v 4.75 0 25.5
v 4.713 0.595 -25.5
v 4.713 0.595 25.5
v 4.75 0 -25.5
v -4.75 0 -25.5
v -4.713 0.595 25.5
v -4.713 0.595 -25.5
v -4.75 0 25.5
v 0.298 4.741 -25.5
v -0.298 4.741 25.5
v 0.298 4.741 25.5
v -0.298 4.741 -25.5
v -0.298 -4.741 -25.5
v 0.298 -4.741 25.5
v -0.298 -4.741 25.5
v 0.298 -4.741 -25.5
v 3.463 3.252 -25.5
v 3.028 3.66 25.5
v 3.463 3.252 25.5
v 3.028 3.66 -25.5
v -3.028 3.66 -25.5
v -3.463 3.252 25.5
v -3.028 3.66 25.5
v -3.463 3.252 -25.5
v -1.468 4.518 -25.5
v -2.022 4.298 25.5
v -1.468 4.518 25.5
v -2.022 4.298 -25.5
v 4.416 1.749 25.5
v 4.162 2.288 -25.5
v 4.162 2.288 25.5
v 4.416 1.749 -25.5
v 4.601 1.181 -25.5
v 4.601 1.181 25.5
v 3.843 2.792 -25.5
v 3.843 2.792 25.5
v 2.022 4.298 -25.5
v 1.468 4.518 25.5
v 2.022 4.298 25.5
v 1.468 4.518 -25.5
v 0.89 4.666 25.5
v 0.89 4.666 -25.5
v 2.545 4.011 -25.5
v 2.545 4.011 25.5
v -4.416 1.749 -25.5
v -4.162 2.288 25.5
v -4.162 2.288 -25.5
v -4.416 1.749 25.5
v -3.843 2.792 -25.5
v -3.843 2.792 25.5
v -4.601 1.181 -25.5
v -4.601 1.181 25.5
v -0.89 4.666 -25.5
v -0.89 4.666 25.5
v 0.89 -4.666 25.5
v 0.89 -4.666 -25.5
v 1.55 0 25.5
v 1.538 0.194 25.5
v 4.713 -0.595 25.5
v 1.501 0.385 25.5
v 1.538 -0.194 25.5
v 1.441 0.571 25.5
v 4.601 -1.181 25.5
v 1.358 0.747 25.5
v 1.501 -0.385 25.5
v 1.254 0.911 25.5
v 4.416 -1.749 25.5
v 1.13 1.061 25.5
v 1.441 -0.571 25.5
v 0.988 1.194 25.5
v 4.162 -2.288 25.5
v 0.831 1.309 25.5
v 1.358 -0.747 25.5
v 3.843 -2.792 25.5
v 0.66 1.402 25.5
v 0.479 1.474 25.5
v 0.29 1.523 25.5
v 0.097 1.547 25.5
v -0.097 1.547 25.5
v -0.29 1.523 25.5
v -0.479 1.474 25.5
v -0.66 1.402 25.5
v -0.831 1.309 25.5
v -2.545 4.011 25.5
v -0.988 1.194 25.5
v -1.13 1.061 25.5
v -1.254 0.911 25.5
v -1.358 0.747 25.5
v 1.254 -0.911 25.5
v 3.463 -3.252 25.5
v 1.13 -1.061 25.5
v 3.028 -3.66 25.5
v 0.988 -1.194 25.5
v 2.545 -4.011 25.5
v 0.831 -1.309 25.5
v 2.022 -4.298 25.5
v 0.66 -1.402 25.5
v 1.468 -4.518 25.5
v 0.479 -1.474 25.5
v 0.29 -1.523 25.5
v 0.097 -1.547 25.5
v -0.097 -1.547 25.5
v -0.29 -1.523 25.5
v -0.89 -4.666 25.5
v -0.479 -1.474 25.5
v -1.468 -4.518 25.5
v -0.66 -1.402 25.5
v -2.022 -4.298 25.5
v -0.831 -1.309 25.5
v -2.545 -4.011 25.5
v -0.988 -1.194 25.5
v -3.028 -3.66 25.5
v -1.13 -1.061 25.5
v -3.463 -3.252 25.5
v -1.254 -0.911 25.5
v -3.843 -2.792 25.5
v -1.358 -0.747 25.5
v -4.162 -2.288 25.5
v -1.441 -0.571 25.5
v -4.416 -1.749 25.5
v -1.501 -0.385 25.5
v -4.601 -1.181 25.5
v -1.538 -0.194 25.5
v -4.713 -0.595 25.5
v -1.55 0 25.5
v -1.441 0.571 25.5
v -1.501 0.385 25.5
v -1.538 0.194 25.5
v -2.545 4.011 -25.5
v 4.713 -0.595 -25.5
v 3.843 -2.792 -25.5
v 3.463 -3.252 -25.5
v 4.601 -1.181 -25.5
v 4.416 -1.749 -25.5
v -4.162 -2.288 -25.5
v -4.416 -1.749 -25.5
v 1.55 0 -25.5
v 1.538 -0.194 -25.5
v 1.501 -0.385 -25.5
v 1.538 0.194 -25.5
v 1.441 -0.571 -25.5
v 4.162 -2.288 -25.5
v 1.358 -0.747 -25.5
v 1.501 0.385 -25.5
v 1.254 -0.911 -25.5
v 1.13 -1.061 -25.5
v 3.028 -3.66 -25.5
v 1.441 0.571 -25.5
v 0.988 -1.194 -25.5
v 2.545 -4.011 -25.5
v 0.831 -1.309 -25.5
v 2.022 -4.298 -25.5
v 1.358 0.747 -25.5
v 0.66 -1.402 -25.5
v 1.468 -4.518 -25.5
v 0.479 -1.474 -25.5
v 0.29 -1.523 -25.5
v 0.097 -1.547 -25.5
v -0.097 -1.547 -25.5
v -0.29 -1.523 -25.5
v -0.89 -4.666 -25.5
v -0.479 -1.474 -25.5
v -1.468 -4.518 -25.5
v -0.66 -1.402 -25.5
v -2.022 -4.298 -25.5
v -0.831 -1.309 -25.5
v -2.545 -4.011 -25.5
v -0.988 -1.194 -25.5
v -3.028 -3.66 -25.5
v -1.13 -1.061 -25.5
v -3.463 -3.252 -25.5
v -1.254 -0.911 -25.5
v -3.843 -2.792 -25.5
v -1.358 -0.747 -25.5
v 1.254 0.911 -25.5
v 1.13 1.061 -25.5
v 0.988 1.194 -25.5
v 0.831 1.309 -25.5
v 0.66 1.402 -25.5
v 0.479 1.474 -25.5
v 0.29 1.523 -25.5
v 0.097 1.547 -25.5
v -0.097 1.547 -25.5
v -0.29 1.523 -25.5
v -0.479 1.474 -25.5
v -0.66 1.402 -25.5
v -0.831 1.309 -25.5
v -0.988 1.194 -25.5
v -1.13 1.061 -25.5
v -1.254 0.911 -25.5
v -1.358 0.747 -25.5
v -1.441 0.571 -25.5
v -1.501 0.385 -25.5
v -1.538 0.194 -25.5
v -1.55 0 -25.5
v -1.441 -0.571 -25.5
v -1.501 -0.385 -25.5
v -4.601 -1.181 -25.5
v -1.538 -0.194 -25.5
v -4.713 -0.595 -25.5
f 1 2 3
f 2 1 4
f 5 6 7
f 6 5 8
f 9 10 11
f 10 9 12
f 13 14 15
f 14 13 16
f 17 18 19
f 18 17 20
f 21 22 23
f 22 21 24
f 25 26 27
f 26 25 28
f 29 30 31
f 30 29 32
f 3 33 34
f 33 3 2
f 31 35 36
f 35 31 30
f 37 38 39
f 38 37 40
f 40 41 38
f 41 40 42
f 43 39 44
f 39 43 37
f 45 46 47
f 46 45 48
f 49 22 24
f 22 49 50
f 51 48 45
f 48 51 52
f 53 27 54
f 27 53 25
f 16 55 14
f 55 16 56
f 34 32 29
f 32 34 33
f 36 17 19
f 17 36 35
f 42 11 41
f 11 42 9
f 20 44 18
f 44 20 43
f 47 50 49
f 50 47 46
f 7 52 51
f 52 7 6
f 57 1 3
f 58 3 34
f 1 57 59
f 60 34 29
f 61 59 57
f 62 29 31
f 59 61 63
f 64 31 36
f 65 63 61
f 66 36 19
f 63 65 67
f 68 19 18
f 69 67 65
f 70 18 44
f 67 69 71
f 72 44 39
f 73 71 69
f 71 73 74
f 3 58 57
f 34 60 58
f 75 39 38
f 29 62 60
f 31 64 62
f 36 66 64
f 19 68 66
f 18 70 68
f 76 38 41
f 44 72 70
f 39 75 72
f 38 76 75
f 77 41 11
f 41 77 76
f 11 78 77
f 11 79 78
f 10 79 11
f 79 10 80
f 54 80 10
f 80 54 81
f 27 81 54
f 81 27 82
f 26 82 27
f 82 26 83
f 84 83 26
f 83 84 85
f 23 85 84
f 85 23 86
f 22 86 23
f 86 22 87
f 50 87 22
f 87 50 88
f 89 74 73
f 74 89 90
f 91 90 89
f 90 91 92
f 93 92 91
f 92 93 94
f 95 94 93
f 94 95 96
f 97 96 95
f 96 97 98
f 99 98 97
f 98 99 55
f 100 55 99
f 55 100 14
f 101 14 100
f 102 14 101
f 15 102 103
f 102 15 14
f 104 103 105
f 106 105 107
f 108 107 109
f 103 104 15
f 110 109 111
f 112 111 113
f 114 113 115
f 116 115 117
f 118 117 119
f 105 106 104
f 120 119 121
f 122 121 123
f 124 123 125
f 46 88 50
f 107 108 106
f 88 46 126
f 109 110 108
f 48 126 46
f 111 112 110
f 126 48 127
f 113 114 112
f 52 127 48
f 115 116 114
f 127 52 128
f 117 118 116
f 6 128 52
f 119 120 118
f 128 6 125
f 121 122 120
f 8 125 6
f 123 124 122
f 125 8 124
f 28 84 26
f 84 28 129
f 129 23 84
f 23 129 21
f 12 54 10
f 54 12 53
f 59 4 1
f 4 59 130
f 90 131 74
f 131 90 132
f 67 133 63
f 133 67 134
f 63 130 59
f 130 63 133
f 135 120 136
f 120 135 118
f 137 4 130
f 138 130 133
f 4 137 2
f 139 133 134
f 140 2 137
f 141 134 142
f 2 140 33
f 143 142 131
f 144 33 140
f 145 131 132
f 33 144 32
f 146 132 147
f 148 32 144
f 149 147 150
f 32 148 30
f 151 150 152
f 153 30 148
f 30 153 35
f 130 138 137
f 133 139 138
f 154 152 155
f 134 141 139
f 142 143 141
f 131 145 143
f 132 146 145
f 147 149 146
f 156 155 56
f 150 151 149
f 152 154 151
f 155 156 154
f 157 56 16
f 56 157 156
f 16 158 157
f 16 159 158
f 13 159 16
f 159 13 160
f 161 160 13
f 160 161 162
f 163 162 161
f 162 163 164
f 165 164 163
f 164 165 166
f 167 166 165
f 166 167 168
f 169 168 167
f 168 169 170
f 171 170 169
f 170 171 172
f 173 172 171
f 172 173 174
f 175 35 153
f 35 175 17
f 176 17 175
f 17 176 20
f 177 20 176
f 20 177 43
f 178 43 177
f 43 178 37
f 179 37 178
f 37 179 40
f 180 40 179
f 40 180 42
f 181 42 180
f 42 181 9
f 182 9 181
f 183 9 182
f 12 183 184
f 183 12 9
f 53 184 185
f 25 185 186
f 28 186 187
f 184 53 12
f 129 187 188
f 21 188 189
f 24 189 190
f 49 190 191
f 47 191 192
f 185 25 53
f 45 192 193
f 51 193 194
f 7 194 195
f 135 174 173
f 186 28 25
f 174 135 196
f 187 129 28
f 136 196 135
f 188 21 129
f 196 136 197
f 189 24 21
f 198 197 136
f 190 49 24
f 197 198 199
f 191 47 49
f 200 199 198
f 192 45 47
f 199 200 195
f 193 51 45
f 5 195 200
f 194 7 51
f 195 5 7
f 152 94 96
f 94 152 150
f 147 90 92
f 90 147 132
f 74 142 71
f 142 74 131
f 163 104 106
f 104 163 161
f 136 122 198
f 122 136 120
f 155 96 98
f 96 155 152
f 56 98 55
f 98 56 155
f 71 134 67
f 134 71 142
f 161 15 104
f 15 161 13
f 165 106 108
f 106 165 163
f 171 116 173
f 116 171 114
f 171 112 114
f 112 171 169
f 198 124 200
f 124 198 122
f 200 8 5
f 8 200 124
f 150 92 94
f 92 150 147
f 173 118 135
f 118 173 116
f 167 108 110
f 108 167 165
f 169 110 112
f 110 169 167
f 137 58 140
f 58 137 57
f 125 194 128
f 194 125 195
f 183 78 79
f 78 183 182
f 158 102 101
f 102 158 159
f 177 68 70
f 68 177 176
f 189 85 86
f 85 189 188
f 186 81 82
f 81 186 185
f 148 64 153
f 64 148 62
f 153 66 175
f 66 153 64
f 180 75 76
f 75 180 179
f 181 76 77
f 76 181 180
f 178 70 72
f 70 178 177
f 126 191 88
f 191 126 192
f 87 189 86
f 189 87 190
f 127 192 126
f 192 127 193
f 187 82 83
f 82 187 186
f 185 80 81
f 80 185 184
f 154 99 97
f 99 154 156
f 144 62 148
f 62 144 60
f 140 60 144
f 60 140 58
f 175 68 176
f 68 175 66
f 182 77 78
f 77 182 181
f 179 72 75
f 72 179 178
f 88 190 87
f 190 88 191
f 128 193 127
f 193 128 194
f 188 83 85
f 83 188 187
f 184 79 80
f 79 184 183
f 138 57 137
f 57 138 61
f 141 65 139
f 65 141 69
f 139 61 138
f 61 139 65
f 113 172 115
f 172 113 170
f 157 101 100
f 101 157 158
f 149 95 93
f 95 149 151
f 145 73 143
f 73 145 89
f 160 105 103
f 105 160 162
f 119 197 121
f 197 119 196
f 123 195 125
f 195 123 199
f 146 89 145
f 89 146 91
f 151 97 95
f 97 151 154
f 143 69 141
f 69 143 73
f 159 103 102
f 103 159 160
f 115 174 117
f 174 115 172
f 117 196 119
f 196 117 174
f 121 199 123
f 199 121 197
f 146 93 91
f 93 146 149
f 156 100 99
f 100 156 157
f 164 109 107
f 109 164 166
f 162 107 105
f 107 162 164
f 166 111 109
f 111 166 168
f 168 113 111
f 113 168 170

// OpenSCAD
$fn = 50;


difference() {
	union() {
		translate(v = [0, 0, -25.5000000000]) {
			cylinder(h = 51, r = 4.7500000000);
		}
	}
	union() {
		translate(v = [0, 0, -100.0000000000]) {
			cylinder(h = 200, r = 1.5500000000);
		}
	}
}
